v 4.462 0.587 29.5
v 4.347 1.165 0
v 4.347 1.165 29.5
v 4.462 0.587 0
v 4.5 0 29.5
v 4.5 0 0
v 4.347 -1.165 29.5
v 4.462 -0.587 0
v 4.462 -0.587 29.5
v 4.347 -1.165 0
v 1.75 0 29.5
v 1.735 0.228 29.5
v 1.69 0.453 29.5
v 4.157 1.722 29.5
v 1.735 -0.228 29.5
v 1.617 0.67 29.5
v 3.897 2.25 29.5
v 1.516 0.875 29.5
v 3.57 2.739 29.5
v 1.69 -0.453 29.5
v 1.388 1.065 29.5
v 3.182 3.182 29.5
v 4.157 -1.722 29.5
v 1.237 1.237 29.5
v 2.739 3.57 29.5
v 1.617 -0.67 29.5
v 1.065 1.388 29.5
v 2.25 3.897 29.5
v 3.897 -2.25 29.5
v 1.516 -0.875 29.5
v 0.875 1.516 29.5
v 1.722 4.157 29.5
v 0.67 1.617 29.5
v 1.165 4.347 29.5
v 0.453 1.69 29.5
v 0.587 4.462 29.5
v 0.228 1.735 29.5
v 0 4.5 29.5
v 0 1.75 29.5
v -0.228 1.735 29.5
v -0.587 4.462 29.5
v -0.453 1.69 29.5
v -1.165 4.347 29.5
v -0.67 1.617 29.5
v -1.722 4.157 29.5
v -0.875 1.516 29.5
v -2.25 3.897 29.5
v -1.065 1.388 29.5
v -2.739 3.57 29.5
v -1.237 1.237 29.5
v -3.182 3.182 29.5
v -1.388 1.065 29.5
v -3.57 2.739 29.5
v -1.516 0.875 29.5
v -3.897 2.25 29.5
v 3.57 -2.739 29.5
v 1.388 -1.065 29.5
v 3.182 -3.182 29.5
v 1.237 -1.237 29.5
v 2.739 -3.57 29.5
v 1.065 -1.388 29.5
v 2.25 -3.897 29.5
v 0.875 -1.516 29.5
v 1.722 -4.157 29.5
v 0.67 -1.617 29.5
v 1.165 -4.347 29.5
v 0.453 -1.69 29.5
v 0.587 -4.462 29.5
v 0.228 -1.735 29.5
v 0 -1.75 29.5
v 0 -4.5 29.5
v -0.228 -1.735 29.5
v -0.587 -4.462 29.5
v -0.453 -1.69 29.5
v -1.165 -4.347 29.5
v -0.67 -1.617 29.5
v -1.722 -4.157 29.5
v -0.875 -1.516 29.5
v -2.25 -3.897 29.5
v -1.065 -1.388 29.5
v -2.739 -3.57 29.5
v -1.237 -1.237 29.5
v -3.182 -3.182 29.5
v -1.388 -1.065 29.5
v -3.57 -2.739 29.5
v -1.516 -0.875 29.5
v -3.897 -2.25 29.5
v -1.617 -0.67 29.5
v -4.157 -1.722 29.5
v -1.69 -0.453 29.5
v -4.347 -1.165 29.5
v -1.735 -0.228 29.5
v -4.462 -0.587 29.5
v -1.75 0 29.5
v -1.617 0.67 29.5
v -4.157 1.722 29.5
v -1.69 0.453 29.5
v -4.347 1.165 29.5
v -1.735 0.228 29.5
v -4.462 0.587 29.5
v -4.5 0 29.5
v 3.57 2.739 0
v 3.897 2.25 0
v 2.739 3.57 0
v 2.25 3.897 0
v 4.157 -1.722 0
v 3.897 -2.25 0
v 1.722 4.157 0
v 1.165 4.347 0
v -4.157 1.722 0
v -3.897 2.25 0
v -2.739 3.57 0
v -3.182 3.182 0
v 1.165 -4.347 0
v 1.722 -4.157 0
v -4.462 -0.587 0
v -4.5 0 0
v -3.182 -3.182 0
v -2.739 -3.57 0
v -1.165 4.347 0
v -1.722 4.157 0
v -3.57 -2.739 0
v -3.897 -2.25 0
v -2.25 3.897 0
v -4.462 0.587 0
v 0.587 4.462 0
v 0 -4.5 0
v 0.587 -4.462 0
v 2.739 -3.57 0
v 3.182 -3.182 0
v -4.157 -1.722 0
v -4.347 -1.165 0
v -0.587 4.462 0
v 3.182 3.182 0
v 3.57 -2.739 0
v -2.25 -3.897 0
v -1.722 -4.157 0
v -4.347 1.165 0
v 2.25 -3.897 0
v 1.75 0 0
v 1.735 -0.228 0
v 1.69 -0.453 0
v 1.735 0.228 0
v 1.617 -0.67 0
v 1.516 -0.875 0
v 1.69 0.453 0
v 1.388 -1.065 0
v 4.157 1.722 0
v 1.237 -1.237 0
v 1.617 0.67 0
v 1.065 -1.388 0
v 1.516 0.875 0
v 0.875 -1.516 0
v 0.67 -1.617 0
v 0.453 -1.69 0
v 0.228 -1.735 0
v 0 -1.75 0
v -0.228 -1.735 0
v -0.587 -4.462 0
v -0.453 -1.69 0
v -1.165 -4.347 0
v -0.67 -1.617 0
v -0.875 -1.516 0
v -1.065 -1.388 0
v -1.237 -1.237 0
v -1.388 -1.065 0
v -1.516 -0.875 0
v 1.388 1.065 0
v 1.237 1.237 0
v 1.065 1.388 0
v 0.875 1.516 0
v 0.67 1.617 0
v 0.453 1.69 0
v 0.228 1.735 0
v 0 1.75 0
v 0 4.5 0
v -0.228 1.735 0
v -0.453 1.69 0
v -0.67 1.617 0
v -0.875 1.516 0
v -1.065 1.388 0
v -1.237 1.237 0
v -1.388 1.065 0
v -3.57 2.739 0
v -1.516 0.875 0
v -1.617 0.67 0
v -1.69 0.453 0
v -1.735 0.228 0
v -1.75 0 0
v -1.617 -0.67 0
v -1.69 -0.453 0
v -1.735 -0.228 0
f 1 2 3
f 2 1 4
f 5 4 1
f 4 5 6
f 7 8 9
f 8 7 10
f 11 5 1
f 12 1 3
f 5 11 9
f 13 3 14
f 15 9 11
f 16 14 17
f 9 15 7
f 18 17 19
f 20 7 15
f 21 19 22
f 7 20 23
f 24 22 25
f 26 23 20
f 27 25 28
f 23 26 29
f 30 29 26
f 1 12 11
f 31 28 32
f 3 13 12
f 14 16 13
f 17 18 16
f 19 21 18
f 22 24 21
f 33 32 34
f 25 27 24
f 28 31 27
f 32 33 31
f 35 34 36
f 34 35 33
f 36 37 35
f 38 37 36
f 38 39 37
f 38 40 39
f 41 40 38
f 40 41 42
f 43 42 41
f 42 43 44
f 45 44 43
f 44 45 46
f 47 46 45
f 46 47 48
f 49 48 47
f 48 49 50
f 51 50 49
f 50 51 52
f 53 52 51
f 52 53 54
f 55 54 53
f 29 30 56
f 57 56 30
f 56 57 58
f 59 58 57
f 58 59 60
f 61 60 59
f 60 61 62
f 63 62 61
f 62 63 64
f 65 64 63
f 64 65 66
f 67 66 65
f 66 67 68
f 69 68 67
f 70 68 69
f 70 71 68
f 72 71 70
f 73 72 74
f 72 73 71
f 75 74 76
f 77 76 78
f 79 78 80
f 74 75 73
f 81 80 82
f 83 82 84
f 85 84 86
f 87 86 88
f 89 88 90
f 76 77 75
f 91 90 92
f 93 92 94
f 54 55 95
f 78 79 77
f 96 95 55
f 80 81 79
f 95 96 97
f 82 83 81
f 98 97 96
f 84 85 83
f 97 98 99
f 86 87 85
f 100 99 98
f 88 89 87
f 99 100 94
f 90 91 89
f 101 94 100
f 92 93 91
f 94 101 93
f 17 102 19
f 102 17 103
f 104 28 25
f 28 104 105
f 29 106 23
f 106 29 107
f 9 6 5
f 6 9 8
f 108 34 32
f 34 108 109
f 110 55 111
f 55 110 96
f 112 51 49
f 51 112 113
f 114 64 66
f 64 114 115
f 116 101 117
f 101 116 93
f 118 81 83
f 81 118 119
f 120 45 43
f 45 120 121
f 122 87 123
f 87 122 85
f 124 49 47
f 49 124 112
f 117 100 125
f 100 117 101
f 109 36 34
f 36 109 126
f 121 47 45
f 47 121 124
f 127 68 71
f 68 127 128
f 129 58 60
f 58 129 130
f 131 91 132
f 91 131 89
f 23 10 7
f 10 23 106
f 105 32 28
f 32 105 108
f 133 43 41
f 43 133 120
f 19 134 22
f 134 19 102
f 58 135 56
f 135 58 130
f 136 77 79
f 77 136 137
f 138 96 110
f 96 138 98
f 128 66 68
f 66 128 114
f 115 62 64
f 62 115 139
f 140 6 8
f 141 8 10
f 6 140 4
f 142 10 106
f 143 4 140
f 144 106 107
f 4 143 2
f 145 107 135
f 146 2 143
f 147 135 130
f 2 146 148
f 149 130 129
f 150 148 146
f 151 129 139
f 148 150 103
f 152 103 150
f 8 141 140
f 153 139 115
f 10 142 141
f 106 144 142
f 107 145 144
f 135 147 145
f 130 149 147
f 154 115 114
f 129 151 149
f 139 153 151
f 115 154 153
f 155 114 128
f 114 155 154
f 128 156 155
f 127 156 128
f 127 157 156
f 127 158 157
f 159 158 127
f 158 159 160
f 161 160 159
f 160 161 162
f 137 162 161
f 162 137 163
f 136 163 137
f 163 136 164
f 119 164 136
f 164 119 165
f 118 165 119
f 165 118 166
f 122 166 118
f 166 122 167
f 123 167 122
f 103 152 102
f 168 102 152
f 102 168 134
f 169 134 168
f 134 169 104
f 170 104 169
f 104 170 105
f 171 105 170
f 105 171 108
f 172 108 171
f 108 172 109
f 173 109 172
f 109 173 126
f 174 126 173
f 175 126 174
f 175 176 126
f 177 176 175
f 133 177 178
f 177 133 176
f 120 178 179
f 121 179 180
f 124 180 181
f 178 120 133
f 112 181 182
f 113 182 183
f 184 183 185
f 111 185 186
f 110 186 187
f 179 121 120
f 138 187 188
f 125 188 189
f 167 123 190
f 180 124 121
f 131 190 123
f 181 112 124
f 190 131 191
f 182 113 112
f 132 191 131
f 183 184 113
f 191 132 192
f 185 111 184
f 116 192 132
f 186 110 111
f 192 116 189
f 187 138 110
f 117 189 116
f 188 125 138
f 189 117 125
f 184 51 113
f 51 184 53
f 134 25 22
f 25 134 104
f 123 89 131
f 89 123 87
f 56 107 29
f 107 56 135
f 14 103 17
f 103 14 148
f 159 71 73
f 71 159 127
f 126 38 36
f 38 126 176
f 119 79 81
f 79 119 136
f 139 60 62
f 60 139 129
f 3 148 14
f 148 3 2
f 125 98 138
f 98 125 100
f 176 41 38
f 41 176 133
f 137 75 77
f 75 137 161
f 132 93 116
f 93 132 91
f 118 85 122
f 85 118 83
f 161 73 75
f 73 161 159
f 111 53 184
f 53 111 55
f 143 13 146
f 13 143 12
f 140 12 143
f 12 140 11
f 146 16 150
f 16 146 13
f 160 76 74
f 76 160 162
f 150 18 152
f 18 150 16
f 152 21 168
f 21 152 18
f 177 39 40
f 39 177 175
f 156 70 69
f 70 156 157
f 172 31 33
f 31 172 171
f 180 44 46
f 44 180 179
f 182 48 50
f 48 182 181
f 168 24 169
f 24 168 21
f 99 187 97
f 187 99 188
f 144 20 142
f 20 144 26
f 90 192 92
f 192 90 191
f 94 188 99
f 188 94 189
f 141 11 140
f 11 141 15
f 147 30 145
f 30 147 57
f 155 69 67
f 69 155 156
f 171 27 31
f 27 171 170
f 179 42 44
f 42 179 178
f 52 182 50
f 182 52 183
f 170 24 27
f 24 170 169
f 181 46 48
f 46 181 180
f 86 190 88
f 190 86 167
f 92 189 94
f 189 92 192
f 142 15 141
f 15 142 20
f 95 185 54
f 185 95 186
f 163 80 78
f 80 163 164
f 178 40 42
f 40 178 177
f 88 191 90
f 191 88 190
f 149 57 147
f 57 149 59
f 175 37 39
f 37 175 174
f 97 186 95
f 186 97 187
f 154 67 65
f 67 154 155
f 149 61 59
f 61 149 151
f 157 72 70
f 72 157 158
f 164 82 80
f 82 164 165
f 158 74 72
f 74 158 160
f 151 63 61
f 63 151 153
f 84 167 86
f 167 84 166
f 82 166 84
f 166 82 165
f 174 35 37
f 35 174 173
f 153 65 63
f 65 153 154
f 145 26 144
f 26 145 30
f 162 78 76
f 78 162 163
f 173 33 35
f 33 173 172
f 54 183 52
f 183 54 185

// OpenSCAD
// Gen-CQ — frame standoff tube between stator and an endbell, on each M3 frame rod (outside rotor OD).
// Print x4. Height = frame_standoff_h (rotor + steel + hub + collar + running clearance).
include <parameters.scad>;
$fn = 48;
difference() {
    cylinder(d=standoff_od, h=frame_standoff_h);
    translate([0, 0, -0.1]) cylinder(d=m3_clear, h=frame_standoff_h + 0.2);
}
